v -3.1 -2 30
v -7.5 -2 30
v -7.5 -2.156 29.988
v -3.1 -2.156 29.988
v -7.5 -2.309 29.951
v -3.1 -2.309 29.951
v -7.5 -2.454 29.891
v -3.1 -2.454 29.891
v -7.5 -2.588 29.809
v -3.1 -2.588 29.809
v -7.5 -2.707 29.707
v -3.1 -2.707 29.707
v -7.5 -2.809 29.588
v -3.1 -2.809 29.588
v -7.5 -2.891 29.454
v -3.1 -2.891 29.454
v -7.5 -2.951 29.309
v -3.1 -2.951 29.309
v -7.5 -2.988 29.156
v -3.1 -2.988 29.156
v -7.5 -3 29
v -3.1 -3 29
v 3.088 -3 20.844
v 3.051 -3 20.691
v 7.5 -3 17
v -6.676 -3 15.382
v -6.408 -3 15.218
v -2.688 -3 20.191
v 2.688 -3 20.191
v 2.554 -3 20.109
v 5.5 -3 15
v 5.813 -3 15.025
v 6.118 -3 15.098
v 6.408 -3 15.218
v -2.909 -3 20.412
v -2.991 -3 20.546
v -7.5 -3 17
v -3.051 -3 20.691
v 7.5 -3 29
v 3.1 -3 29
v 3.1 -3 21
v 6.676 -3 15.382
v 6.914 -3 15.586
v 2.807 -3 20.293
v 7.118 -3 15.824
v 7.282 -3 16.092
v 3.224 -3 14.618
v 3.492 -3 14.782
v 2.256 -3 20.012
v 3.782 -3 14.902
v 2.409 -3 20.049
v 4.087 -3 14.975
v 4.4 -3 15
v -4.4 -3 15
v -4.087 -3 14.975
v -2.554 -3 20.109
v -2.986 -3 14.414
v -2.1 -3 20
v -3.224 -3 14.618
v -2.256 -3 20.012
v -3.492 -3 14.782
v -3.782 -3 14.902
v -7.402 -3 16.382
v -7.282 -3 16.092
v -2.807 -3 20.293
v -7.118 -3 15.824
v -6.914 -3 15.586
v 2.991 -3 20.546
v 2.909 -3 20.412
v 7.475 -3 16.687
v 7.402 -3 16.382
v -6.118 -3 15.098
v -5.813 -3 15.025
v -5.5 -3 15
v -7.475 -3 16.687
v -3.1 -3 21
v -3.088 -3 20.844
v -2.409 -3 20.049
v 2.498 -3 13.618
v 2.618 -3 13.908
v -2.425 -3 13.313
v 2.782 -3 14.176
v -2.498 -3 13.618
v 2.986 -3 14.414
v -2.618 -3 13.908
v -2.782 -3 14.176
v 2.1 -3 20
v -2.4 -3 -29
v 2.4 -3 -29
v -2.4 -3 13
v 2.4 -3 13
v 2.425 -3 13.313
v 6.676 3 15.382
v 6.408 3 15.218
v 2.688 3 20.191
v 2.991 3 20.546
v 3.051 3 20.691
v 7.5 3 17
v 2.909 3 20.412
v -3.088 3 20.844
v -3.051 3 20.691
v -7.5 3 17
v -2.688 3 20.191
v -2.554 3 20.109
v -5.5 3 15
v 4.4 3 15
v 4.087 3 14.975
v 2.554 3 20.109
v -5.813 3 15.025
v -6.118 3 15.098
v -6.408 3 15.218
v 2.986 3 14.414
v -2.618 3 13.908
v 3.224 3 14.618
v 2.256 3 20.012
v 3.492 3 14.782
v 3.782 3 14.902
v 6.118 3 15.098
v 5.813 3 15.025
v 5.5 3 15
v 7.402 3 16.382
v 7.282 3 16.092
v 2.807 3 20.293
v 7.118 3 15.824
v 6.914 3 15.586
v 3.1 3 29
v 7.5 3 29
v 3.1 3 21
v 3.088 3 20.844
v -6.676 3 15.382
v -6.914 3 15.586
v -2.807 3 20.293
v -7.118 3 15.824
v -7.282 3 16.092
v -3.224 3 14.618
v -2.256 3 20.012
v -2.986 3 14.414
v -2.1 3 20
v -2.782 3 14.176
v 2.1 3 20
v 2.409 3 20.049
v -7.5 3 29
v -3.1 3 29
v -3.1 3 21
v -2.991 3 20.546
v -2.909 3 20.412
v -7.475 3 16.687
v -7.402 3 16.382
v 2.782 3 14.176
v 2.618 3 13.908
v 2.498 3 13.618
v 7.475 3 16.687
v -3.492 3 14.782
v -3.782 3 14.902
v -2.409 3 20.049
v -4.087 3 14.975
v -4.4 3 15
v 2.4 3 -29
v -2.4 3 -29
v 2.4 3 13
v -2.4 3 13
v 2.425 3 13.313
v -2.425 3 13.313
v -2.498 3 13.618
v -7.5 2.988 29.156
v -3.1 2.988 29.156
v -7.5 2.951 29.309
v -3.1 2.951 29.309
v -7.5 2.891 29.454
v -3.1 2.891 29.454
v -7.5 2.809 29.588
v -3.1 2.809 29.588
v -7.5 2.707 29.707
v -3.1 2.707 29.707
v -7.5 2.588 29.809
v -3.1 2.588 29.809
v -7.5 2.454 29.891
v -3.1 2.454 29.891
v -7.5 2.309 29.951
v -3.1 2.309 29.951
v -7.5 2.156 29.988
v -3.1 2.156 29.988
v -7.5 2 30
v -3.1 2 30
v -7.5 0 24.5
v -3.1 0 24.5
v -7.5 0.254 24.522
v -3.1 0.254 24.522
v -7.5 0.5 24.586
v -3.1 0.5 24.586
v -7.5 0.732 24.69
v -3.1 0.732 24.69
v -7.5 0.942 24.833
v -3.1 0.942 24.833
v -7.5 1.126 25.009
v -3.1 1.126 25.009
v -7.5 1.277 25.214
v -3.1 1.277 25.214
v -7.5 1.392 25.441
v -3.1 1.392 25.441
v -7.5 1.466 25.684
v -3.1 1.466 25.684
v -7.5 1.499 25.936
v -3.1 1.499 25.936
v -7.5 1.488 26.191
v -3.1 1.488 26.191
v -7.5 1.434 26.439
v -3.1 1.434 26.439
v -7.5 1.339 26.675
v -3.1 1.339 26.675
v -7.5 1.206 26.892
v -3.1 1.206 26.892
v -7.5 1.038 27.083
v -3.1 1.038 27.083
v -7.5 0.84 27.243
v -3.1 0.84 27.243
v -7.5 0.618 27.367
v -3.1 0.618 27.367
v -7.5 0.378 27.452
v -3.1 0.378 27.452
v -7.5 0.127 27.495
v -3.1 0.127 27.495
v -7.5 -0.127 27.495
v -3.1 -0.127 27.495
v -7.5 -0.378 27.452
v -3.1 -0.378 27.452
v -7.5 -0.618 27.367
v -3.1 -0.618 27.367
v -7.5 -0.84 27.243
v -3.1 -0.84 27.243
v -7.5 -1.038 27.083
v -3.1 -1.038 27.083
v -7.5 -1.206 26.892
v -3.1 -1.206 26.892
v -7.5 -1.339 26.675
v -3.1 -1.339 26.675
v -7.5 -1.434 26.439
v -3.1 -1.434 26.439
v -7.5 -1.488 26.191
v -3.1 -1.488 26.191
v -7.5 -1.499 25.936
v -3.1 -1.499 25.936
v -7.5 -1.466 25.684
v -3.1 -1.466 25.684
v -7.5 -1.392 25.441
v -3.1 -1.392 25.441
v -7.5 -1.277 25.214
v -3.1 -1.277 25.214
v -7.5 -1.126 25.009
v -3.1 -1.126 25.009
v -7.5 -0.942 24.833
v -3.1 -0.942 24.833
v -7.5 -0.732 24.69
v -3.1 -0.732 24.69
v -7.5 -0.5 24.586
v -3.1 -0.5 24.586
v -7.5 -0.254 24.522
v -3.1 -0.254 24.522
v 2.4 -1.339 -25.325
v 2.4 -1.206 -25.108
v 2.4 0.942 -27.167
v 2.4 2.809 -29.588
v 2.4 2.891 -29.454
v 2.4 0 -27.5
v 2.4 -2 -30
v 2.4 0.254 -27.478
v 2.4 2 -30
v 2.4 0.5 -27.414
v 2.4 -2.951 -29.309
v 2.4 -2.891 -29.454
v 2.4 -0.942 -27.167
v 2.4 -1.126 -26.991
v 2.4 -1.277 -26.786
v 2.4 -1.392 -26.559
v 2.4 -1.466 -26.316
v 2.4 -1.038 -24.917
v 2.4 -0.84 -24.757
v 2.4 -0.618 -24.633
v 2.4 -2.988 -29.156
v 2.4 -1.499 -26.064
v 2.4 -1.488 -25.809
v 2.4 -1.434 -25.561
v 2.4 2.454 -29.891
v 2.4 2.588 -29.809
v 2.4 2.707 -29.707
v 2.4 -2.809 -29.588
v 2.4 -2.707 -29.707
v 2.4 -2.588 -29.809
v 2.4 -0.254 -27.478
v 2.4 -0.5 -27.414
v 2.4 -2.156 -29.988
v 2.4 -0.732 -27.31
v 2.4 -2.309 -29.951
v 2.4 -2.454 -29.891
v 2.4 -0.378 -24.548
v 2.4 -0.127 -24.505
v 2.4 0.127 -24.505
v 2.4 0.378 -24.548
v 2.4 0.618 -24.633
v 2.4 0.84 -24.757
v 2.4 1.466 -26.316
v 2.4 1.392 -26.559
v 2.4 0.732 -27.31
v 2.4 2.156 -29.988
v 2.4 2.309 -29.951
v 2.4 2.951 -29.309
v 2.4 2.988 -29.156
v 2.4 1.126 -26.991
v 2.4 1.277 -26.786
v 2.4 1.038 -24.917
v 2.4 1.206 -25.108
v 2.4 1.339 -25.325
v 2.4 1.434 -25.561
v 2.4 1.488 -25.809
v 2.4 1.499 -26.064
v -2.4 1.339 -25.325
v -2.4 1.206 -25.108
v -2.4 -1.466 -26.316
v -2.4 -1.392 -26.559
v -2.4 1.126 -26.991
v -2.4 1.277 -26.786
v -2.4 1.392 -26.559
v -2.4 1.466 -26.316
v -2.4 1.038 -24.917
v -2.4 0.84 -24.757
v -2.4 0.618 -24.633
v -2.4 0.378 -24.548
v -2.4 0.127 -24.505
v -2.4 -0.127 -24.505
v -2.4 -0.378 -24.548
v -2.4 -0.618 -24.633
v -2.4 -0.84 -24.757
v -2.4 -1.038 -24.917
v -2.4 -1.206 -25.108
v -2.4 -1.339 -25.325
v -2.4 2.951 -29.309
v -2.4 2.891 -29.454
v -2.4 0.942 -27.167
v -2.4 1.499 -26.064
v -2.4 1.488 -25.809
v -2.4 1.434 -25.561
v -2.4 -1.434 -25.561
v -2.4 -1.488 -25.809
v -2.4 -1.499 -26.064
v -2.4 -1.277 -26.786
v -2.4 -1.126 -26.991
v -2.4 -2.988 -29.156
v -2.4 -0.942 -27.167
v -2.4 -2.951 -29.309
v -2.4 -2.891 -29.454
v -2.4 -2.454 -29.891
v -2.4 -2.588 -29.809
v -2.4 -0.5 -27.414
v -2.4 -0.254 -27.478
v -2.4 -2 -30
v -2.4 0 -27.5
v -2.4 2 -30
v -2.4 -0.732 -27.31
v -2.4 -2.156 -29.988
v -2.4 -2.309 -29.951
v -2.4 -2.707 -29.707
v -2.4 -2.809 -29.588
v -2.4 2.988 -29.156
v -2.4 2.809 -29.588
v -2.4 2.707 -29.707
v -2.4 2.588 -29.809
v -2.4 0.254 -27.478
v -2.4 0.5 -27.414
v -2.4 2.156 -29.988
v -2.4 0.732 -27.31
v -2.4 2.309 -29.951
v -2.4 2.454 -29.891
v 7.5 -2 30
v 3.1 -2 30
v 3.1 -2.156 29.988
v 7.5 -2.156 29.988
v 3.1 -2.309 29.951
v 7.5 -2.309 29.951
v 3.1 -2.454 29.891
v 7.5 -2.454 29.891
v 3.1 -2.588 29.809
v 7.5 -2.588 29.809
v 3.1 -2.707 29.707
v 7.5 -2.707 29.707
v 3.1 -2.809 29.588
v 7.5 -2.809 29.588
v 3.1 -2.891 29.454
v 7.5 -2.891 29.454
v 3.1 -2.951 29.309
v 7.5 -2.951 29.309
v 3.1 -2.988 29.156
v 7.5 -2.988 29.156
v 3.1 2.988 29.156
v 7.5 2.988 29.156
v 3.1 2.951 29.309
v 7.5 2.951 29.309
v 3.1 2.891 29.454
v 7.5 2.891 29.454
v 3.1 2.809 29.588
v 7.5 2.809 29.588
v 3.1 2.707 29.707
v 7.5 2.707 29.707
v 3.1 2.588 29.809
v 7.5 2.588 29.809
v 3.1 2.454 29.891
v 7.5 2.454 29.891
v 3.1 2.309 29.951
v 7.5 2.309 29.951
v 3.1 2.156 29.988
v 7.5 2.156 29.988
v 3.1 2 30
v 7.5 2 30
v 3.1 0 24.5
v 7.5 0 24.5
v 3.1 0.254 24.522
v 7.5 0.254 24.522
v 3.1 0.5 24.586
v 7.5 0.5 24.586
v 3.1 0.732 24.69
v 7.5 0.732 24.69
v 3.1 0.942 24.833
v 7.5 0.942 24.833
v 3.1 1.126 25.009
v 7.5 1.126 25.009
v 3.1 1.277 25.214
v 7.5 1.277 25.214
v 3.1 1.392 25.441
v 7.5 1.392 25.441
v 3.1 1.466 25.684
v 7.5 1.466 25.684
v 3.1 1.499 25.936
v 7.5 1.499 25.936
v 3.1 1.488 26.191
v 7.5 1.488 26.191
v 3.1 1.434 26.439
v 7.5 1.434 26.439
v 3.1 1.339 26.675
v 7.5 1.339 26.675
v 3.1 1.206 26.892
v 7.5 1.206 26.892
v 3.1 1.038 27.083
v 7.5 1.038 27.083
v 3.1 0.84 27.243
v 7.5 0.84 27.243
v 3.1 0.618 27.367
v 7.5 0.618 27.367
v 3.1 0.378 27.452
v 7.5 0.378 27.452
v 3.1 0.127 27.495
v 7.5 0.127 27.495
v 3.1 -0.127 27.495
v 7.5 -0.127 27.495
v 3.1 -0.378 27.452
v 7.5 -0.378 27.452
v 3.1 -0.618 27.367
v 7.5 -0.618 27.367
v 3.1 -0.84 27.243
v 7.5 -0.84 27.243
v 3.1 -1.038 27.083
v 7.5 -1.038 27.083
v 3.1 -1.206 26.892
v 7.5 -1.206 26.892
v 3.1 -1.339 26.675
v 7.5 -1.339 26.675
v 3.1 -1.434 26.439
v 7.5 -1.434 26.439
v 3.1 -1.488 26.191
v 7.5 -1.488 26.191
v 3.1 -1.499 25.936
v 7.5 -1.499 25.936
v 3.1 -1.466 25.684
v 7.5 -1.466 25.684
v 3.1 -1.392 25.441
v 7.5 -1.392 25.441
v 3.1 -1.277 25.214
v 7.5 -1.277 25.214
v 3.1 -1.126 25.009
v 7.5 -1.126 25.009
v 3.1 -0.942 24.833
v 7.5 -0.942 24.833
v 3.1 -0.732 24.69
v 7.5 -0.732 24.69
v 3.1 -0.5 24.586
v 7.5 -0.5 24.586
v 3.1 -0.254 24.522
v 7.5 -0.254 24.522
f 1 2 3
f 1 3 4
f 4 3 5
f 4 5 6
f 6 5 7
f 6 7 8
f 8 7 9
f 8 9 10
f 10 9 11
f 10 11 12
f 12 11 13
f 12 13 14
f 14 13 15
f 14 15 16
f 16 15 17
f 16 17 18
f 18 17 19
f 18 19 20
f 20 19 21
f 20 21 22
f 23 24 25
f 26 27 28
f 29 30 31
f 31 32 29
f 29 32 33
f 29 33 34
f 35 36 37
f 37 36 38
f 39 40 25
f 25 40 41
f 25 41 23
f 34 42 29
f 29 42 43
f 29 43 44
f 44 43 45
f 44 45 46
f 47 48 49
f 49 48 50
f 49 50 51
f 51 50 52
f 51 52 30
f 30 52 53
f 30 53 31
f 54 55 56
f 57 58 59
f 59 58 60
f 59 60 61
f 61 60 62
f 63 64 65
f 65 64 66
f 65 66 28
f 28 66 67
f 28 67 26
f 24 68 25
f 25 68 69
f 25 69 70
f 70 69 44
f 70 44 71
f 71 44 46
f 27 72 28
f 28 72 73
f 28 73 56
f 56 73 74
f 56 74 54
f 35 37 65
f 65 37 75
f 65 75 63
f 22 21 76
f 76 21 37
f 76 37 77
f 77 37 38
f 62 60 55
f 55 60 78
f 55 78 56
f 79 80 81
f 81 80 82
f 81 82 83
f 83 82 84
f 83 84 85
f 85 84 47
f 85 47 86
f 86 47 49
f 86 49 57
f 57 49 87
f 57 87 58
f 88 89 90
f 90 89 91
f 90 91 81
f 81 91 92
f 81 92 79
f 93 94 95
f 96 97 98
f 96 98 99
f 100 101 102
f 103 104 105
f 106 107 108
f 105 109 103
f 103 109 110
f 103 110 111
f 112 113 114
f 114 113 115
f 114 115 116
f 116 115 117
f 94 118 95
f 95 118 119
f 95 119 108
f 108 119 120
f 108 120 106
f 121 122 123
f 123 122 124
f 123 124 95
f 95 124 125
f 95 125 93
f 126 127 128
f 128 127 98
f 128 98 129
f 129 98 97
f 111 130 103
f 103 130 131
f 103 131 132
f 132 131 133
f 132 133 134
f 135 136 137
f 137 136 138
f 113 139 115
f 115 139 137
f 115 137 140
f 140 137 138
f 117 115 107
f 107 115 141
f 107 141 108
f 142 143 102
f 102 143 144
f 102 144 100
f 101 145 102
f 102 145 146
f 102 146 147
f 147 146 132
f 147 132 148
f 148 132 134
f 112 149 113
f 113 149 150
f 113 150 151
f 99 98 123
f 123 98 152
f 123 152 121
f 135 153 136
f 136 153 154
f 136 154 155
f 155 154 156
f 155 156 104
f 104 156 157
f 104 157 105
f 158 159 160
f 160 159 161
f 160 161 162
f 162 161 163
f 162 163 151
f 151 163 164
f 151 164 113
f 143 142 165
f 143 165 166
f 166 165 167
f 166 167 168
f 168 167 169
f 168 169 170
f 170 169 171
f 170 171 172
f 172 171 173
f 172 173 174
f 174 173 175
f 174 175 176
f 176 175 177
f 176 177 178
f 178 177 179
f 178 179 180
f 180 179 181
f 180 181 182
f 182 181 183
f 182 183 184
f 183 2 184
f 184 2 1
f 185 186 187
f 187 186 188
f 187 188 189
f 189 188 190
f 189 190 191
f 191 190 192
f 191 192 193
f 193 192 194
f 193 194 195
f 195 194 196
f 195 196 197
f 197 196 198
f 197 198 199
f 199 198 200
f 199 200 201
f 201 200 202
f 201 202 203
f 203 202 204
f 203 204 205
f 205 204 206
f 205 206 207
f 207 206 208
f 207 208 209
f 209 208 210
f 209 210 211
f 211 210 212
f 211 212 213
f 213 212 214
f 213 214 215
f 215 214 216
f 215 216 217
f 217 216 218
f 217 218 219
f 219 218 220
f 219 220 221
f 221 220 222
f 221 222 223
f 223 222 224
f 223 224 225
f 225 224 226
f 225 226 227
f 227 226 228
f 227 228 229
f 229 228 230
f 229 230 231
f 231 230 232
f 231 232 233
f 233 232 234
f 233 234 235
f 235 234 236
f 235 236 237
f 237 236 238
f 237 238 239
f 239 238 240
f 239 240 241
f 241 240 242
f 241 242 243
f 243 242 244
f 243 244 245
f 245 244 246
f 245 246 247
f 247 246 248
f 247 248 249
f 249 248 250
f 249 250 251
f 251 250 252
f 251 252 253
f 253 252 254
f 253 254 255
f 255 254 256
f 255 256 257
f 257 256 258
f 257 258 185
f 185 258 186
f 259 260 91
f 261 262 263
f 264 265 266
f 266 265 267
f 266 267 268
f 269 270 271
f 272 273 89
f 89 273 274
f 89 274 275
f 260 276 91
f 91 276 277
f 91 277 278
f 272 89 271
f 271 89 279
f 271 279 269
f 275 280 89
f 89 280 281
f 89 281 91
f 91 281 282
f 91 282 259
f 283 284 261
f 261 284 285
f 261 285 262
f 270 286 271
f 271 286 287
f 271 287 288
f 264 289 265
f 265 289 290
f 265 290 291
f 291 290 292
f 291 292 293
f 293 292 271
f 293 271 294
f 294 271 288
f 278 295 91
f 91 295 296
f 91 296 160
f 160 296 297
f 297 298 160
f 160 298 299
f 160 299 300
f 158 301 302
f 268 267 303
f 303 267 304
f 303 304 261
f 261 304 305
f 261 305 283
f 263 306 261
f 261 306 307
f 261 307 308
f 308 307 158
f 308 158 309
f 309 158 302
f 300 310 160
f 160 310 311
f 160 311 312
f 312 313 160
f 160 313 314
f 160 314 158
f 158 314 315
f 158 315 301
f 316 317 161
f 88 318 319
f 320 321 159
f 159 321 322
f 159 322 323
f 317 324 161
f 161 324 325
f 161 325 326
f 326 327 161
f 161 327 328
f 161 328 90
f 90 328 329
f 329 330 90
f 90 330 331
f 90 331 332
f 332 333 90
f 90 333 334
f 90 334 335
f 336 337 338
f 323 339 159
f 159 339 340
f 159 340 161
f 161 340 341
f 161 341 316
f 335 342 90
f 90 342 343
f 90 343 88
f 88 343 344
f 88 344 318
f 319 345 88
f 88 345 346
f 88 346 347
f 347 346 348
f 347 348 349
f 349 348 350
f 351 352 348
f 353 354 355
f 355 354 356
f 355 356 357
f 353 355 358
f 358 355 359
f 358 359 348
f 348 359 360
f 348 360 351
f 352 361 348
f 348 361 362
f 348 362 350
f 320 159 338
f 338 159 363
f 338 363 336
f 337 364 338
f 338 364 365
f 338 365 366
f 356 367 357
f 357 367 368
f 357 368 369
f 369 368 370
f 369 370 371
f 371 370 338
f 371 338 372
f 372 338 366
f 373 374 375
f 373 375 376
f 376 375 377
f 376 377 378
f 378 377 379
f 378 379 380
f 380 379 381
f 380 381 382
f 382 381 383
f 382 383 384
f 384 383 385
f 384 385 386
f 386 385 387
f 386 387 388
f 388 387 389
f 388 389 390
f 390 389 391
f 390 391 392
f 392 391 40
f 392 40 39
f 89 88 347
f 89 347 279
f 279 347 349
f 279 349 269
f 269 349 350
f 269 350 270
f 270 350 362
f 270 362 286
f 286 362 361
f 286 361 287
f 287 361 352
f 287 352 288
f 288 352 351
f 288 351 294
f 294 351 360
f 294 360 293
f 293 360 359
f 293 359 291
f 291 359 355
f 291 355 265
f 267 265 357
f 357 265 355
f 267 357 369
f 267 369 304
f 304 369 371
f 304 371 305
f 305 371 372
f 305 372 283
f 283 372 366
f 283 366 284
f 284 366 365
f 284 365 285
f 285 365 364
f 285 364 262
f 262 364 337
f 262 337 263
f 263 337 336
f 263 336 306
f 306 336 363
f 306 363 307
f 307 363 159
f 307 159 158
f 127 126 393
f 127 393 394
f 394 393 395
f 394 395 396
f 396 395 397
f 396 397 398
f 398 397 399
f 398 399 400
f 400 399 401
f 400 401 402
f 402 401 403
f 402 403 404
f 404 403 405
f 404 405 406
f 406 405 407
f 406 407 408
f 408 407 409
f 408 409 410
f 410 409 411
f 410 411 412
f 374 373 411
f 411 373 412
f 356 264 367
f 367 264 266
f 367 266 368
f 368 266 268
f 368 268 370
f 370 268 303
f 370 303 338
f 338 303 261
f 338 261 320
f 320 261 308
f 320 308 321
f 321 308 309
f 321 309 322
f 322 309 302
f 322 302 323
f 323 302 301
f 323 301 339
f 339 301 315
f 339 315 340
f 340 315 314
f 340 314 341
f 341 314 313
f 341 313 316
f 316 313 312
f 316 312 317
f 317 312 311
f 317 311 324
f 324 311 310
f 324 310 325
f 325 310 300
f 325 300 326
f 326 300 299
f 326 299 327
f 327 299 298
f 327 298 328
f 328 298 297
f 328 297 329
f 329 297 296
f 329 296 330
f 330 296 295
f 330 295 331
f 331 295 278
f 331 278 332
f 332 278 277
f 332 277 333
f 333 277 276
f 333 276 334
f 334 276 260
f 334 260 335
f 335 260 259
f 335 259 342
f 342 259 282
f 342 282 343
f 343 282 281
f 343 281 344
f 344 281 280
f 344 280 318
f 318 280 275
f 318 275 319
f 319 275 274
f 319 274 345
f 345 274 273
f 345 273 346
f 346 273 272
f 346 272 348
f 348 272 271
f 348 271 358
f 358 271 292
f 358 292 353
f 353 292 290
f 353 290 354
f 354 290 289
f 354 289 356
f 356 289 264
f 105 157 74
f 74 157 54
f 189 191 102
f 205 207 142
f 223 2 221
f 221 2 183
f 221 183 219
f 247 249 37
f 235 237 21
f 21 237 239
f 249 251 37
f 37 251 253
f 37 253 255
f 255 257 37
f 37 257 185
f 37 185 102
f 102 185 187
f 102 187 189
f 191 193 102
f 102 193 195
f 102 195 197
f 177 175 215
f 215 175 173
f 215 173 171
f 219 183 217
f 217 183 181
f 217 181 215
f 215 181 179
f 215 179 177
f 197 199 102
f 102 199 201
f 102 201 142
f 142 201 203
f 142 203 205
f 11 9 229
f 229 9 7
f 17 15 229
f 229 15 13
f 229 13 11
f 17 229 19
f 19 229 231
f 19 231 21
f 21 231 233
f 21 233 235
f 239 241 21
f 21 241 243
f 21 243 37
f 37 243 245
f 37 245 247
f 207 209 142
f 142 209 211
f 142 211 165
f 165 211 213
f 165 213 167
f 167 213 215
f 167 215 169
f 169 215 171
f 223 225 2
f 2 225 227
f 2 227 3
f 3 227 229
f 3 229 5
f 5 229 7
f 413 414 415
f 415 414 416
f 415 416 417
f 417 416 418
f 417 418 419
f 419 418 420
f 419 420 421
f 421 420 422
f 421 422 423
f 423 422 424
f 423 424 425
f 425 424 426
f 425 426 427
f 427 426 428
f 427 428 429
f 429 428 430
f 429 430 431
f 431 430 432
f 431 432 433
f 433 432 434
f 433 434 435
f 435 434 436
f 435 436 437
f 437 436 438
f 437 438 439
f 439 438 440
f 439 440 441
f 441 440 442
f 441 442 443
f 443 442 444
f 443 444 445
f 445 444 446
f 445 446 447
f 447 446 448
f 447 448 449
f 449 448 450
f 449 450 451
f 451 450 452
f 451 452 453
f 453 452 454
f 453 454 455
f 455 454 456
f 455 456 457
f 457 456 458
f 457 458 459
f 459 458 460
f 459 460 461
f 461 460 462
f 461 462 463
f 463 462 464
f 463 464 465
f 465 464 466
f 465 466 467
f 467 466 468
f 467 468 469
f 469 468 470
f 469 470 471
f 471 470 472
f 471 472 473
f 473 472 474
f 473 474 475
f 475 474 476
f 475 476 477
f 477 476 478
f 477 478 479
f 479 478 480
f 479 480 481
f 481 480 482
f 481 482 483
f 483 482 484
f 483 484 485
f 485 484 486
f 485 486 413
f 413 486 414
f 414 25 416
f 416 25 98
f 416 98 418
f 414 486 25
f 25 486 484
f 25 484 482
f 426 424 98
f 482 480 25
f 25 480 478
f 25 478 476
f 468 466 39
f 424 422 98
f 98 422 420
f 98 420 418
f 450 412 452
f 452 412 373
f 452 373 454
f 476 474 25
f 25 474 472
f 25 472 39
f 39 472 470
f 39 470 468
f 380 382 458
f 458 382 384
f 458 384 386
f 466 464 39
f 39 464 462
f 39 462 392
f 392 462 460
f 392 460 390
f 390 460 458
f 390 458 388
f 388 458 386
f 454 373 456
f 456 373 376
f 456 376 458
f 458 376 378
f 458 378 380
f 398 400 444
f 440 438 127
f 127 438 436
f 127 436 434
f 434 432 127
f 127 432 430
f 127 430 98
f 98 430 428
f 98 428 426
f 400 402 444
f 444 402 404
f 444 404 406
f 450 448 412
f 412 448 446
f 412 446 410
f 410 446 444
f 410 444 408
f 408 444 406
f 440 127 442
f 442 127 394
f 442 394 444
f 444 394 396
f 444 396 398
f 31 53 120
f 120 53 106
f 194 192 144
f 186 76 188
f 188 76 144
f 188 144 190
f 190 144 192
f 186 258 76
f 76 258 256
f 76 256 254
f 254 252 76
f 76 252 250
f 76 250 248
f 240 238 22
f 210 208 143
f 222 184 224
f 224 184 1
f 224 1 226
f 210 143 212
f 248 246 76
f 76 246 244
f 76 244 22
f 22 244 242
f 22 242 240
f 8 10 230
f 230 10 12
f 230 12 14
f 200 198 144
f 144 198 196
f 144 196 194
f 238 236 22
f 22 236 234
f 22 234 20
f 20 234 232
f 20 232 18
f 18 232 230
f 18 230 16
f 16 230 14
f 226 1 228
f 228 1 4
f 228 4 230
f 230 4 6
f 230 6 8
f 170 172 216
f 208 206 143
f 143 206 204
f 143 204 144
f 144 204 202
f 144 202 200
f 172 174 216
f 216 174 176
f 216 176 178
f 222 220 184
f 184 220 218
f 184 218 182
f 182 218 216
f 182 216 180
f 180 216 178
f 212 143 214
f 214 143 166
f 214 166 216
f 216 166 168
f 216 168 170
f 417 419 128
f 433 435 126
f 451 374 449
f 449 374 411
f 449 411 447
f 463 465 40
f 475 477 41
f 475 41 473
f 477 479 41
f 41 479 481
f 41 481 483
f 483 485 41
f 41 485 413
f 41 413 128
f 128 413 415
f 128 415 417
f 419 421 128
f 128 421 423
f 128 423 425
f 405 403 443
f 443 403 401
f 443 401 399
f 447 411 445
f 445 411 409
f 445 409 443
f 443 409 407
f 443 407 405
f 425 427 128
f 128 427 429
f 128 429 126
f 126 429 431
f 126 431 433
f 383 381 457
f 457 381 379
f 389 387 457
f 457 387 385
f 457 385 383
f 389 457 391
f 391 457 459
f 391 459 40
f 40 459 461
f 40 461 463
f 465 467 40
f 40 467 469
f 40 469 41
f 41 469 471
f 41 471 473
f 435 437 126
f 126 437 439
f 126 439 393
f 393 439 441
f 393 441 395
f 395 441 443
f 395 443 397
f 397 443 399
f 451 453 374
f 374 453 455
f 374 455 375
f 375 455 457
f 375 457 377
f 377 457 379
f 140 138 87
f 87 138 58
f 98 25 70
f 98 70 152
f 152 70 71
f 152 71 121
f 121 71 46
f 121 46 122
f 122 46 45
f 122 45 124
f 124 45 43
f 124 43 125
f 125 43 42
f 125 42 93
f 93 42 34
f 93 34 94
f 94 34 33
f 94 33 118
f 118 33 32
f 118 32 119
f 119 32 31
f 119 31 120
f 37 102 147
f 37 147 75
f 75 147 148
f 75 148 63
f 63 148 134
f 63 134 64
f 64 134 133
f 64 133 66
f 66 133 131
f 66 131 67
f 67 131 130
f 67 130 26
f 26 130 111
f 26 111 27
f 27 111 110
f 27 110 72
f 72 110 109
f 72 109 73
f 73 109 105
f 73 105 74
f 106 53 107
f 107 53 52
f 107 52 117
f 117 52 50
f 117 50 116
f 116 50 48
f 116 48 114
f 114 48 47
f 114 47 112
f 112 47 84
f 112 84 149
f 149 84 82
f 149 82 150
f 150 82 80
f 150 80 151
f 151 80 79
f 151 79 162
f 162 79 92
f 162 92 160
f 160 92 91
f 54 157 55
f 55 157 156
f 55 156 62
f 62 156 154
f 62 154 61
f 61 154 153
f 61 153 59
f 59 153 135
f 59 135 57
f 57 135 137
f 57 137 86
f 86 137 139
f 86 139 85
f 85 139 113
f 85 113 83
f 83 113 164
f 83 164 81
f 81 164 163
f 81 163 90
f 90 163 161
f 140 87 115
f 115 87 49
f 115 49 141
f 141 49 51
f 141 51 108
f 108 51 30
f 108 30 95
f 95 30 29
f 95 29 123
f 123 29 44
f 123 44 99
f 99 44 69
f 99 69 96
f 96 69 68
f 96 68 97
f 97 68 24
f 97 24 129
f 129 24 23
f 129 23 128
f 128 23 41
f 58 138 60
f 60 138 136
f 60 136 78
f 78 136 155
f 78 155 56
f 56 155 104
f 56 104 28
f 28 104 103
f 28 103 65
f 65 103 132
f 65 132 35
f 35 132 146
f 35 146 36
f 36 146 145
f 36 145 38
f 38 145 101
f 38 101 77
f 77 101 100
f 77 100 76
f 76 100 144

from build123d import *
from build123d.topology import SkipClean

# Parameters (mm, degrees)
SALIENTE_EXTRUIR1_DEPTH    = 2.4
CORTAR_EXTRUIR1_DEPTH      = 31.244999587
CORTAR_EXTRUIR1_DEPTH_BACK = 31.244999587
CROQUIS2_R                 = 1.5
CROQUIS3_R                 = 1.5
SALIENTE_EXTRUIR2_DEPTH    = 7.5
CORTAR_EXTRUIR2_DEPTH      = 3.1
REDONDEO1_R                = 2
REDONDEO2_R                = 1


with BuildPart() as part:
    # Croquis1 → Saliente-Extruir1 (new, symmetric)
    with BuildSketch(Plane(origin=(0, 0, 0), x_dir=(0, 0, -1), z_dir=(1, 0, 0))):
        with BuildLine():
            Line((-29, 3), (29, 3))
            ThreePointArc((29, 3), (29.707106781, 2.707106781), (30, 2))
            Line((30, 2), (30, -2))
            ThreePointArc((30, -2), (29.707106781, -2.707106781), (29, -3))
            Line((29, -3), (-29, -3))
            ThreePointArc((-29, -3), (-29.707106781, -2.707106781), (-30, -2))
            Line((-30, -2), (-30, 2))
            ThreePointArc((-30, 2), (-29.707106781, 2.707106781), (-29, 3))
        make_face()
    extrude(amount=SALIENTE_EXTRUIR1_DEPTH, both=True)

    # Croquis2 → Cortar-Extruir1 (cut, two sides: drawn at the far end of the back side and taken through both)
    with BuildSketch(Plane(origin=(0, 0, 0), x_dir=(0, 0, -1), z_dir=(1, 0, 0)).offset(-CORTAR_EXTRUIR1_DEPTH_BACK)):
        with Locations((-26, 0)):
            Circle(CROQUIS2_R)
        with Locations((26, 0)):
            Circle(CROQUIS2_R)
    extrude(amount=CORTAR_EXTRUIR1_DEPTH + CORTAR_EXTRUIR1_DEPTH_BACK, mode=Mode.SUBTRACT)

    # Croquis3 → Saliente-Extruir2 (add, symmetric)
    with SkipClean():  # the faces are left unmerged after this step: merging them gives an invalid solid
        with BuildSketch(Plane(origin=(0, 0, 0), x_dir=(0, 0, -1), z_dir=(1, 0, 0))):
            with BuildLine():
                Line((-30, 2), (-30, -2))
                ThreePointArc((-30, -2), (-29.707106781, -2.707106781), (-29, -3))
                Line((-29, -3), (-15, -3))
                Line((-15, -3), (-15, 3))
                Line((-15, 3), (-29, 3))
                ThreePointArc((-29, 3), (-29.707106781, 2.707106781), (-30, 2))
            make_face()
            with Locations((-26, 0)):
                Circle(CROQUIS3_R, mode=Mode.SUBTRACT)
        extrude(amount=SALIENTE_EXTRUIR2_DEPTH, both=True)
    add(part.part.scale(1), mode=Mode.REPLACE)  # the faces are merged on a copy

    # Croquis4 → Cortar-Extruir2 (cut, symmetric)
    with BuildSketch(Plane(origin=(0, 0, 0), x_dir=(0, 0, -1), z_dir=(1, 0, 0))):
        with BuildLine():
            Line((-29, 3), (-20, 3))
            Line((-20, 3), (-20, -3))
            Line((-20, -3), (-29, -3))
            ThreePointArc((-29, -3), (-29.707106781, -2.707106781), (-30, -2))
            Line((-30, -2), (-30, 2))
            ThreePointArc((-30, 2), (-29.707106781, 2.707106781), (-29, 3))
        make_face()
    extrude(amount=CORTAR_EXTRUIR2_DEPTH, both=True, mode=Mode.SUBTRACT)

    # Redondeo1
    redondeo1_edges = [part.edges().sort_by_distance(p)[0] for p in [
        (-2.4, 0, 15),
        (2.4, 0, 15),
        (-7.5, 0, 15),
        (7.5, 0, 15),
    ]]
    fillet(redondeo1_edges, radius=REDONDEO1_R)

    # Redondeo2
    redondeo2_edges = [part.edges().sort_by_distance(p)[0] for p in [
        (3.1, 0, 20),
        (-3.1, 0, 20),
    ]]
    fillet(redondeo2_edges, radius=REDONDEO2_R)


solid = part.part
